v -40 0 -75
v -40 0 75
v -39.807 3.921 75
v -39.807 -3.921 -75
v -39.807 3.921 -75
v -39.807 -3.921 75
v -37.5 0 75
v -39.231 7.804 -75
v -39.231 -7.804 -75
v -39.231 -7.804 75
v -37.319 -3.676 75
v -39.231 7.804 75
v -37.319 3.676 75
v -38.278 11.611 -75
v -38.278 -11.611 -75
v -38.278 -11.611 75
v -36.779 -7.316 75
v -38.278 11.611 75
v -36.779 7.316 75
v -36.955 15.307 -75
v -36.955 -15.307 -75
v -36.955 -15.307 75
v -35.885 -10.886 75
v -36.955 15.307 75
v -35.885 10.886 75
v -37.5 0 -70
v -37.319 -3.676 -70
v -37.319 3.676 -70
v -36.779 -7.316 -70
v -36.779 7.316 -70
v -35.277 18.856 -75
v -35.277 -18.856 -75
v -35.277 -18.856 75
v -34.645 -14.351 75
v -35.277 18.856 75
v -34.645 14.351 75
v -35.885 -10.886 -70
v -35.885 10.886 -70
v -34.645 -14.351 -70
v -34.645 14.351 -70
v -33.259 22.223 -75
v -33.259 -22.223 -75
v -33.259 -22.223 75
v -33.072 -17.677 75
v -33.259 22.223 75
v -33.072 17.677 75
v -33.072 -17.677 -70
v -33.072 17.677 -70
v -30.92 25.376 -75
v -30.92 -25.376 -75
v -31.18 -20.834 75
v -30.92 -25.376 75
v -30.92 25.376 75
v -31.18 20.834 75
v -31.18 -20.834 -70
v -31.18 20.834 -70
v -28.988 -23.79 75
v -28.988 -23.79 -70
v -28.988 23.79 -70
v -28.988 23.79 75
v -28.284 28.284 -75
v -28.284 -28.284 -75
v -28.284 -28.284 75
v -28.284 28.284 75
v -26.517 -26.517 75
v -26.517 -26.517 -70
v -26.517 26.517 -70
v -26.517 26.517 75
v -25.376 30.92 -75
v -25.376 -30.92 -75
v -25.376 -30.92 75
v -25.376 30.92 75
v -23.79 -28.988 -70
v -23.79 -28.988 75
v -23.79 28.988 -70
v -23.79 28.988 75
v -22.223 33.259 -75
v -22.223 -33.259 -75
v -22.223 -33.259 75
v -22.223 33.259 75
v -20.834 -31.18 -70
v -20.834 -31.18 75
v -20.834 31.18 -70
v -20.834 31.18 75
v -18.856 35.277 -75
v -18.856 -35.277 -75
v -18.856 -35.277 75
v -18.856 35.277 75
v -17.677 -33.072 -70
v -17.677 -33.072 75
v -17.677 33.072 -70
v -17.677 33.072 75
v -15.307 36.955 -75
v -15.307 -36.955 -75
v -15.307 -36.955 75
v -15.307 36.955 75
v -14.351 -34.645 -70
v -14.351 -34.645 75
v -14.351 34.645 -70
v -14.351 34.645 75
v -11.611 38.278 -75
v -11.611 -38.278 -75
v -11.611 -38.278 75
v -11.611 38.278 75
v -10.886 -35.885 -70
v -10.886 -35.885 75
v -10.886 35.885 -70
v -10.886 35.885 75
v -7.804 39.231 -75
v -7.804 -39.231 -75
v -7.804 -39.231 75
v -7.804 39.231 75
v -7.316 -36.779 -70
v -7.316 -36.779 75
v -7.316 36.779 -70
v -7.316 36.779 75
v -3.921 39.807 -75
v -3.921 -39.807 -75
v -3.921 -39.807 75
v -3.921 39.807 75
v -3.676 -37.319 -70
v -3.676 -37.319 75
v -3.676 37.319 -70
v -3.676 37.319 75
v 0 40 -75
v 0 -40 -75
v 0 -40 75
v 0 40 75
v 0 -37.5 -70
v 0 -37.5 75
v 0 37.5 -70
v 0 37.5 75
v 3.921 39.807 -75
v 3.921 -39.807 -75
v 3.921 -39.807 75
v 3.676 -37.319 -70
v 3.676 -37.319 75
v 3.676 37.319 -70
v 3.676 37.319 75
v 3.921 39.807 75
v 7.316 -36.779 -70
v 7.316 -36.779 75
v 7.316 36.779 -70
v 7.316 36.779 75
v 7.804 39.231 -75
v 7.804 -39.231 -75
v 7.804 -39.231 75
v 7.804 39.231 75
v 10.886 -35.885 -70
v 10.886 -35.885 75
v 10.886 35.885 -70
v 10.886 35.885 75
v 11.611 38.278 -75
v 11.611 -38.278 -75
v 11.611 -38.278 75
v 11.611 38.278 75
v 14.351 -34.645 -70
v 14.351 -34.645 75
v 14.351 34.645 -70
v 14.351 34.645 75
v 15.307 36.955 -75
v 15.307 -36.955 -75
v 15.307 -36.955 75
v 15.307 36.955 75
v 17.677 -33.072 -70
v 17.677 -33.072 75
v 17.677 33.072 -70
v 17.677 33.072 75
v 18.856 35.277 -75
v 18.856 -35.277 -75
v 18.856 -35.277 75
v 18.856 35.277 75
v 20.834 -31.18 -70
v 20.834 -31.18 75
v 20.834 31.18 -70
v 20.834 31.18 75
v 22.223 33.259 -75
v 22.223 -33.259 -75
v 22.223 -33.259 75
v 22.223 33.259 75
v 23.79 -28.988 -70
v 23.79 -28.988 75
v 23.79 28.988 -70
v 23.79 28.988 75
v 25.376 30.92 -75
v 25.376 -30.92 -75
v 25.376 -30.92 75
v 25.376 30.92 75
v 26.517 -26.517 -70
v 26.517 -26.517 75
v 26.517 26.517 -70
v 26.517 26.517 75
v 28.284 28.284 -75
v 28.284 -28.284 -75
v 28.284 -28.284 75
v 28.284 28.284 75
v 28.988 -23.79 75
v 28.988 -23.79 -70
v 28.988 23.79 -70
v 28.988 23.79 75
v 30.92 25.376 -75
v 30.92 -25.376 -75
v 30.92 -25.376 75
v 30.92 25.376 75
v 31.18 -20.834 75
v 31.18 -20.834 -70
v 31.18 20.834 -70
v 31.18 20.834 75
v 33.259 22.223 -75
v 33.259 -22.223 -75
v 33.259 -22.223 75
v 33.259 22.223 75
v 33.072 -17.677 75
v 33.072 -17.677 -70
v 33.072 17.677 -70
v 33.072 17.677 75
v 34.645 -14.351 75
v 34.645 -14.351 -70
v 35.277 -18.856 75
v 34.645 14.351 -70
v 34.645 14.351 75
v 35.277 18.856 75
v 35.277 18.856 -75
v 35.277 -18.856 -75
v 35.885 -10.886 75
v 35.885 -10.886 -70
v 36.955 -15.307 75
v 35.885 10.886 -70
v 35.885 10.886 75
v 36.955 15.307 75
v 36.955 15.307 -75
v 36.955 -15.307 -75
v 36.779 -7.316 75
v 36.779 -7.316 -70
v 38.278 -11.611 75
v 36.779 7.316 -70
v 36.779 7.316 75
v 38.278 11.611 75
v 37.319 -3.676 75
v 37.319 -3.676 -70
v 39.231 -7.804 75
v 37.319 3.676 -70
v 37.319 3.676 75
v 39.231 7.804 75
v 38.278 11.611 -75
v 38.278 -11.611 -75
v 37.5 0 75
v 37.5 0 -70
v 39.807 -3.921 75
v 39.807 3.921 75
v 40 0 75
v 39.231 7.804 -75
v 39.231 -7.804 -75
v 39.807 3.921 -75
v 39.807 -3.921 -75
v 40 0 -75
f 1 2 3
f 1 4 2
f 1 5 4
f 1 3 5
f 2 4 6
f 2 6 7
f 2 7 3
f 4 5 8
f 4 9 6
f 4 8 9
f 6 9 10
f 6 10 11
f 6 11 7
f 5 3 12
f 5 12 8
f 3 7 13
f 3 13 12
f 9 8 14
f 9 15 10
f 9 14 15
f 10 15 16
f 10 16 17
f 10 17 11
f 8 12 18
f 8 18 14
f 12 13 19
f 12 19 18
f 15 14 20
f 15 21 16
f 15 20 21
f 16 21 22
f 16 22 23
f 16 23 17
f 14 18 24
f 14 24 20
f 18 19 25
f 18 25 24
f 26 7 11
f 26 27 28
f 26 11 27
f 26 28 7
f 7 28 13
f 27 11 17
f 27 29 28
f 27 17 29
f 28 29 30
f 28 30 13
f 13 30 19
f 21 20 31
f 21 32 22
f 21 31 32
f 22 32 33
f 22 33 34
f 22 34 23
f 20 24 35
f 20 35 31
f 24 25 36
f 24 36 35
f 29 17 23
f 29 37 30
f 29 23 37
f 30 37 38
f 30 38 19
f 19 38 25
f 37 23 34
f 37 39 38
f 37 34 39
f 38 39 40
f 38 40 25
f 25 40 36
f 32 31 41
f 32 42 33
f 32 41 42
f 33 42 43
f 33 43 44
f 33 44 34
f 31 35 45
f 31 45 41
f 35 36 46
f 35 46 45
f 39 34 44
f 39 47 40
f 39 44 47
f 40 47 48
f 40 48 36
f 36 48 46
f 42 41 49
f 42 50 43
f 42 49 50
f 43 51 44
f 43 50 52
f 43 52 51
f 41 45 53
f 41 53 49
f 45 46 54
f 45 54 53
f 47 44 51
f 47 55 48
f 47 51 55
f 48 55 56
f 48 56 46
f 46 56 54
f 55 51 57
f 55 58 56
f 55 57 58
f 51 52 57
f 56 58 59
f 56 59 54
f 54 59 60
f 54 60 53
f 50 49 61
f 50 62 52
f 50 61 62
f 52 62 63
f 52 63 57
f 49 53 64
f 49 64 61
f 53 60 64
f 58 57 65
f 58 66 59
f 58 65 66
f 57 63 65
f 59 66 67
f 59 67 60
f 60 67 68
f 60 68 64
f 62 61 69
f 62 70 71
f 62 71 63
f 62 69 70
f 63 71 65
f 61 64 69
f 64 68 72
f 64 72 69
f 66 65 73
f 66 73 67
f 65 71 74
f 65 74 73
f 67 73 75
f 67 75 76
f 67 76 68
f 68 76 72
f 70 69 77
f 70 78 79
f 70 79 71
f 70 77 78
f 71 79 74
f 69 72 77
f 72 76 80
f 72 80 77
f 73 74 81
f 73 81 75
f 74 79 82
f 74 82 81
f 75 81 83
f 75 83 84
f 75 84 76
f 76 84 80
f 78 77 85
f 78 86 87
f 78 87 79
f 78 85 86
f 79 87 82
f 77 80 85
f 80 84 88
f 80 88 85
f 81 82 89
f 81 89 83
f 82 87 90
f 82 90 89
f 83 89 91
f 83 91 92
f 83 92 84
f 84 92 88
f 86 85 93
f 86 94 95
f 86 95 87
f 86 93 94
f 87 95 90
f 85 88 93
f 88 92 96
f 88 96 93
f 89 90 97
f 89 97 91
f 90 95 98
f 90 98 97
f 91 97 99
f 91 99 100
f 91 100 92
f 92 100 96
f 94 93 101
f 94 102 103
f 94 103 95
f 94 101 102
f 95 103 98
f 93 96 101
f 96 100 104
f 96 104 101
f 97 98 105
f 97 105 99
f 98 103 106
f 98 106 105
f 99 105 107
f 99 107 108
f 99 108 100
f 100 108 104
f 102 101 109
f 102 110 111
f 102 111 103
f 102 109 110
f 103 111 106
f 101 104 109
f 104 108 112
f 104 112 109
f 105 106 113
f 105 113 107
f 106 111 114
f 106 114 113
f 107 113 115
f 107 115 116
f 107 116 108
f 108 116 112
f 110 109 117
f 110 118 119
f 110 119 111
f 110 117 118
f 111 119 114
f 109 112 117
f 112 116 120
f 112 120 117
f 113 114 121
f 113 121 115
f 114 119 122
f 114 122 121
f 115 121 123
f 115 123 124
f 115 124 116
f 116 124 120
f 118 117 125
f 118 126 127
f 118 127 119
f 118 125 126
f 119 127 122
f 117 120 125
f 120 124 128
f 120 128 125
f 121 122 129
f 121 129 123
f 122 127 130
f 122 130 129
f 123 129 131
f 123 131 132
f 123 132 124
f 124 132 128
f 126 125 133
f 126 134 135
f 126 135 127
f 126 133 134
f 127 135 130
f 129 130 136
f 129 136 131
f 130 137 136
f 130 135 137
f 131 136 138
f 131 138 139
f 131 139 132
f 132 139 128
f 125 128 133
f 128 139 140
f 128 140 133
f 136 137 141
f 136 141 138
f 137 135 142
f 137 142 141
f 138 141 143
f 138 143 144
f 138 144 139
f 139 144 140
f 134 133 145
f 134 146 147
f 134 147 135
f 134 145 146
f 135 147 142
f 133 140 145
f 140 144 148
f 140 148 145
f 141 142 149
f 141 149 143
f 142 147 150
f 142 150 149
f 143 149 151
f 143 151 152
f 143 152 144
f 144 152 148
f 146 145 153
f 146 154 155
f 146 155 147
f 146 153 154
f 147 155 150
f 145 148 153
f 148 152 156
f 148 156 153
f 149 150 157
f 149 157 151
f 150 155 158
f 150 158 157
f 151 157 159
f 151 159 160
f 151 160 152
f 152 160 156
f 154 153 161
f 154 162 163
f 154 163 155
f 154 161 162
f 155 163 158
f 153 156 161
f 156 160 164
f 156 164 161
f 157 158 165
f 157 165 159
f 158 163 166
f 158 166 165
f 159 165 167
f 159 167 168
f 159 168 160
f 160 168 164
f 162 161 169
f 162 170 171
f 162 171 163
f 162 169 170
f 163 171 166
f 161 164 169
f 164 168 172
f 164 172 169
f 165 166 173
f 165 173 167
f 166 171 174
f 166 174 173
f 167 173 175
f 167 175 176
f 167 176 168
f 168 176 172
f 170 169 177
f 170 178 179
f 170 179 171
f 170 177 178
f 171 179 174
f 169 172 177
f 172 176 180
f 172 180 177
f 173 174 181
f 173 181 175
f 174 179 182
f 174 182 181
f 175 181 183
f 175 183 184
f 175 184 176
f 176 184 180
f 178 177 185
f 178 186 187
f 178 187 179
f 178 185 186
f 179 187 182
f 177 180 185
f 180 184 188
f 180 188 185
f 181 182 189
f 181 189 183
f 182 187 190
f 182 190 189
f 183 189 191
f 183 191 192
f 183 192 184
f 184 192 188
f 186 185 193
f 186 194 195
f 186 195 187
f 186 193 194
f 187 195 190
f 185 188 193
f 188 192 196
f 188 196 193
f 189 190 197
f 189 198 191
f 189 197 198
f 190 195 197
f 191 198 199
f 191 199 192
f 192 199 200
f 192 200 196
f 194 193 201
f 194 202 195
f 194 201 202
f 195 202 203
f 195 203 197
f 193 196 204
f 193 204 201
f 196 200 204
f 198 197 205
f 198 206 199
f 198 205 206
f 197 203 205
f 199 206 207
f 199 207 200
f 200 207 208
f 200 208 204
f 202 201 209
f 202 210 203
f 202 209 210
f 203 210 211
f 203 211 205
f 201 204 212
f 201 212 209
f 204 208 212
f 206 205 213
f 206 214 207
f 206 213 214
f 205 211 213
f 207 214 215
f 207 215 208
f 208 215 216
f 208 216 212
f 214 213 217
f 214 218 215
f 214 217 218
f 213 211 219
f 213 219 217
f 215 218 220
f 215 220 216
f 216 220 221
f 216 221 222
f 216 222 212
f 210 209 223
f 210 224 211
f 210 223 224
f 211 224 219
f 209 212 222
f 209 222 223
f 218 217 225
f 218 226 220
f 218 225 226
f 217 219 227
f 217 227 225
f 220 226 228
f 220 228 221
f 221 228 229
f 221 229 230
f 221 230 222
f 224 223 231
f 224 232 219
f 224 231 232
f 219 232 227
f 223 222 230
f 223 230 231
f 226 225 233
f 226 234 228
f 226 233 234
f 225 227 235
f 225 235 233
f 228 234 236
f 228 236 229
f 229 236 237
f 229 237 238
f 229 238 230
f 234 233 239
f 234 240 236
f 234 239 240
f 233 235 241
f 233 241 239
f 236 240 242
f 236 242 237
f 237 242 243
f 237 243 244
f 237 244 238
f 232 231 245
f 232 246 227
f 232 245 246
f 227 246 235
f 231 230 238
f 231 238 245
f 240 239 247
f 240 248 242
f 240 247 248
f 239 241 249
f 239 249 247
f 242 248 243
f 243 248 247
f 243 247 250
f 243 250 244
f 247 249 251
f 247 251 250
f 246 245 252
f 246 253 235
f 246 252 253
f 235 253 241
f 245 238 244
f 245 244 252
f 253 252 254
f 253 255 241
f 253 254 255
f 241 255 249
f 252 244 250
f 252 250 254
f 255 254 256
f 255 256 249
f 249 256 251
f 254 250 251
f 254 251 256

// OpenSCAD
// simple form piece for testing and learning
// 06.09.2025 Sebastian Weigl

// set the fregment sizes
$fn = $preview ? 48 : 64;
// declare vars
//  first body
fir_body_height=150;
fir_body_width=20;
fir_body_depth=20;
fir_body_diameter=80;
//  second body
sec_body_height=10;
sec_body_width=20;
sec_body_depth=20;
sec_body_diameter=75;

// bottom piece
difference() {
color("blue")
cylinder(h=fir_body_height,d=fir_body_diameter,center=true);

color("red")
translate([0,0,5])
  cylinder(h=fir_body_height,d=sec_body_diameter,center=true);
}
